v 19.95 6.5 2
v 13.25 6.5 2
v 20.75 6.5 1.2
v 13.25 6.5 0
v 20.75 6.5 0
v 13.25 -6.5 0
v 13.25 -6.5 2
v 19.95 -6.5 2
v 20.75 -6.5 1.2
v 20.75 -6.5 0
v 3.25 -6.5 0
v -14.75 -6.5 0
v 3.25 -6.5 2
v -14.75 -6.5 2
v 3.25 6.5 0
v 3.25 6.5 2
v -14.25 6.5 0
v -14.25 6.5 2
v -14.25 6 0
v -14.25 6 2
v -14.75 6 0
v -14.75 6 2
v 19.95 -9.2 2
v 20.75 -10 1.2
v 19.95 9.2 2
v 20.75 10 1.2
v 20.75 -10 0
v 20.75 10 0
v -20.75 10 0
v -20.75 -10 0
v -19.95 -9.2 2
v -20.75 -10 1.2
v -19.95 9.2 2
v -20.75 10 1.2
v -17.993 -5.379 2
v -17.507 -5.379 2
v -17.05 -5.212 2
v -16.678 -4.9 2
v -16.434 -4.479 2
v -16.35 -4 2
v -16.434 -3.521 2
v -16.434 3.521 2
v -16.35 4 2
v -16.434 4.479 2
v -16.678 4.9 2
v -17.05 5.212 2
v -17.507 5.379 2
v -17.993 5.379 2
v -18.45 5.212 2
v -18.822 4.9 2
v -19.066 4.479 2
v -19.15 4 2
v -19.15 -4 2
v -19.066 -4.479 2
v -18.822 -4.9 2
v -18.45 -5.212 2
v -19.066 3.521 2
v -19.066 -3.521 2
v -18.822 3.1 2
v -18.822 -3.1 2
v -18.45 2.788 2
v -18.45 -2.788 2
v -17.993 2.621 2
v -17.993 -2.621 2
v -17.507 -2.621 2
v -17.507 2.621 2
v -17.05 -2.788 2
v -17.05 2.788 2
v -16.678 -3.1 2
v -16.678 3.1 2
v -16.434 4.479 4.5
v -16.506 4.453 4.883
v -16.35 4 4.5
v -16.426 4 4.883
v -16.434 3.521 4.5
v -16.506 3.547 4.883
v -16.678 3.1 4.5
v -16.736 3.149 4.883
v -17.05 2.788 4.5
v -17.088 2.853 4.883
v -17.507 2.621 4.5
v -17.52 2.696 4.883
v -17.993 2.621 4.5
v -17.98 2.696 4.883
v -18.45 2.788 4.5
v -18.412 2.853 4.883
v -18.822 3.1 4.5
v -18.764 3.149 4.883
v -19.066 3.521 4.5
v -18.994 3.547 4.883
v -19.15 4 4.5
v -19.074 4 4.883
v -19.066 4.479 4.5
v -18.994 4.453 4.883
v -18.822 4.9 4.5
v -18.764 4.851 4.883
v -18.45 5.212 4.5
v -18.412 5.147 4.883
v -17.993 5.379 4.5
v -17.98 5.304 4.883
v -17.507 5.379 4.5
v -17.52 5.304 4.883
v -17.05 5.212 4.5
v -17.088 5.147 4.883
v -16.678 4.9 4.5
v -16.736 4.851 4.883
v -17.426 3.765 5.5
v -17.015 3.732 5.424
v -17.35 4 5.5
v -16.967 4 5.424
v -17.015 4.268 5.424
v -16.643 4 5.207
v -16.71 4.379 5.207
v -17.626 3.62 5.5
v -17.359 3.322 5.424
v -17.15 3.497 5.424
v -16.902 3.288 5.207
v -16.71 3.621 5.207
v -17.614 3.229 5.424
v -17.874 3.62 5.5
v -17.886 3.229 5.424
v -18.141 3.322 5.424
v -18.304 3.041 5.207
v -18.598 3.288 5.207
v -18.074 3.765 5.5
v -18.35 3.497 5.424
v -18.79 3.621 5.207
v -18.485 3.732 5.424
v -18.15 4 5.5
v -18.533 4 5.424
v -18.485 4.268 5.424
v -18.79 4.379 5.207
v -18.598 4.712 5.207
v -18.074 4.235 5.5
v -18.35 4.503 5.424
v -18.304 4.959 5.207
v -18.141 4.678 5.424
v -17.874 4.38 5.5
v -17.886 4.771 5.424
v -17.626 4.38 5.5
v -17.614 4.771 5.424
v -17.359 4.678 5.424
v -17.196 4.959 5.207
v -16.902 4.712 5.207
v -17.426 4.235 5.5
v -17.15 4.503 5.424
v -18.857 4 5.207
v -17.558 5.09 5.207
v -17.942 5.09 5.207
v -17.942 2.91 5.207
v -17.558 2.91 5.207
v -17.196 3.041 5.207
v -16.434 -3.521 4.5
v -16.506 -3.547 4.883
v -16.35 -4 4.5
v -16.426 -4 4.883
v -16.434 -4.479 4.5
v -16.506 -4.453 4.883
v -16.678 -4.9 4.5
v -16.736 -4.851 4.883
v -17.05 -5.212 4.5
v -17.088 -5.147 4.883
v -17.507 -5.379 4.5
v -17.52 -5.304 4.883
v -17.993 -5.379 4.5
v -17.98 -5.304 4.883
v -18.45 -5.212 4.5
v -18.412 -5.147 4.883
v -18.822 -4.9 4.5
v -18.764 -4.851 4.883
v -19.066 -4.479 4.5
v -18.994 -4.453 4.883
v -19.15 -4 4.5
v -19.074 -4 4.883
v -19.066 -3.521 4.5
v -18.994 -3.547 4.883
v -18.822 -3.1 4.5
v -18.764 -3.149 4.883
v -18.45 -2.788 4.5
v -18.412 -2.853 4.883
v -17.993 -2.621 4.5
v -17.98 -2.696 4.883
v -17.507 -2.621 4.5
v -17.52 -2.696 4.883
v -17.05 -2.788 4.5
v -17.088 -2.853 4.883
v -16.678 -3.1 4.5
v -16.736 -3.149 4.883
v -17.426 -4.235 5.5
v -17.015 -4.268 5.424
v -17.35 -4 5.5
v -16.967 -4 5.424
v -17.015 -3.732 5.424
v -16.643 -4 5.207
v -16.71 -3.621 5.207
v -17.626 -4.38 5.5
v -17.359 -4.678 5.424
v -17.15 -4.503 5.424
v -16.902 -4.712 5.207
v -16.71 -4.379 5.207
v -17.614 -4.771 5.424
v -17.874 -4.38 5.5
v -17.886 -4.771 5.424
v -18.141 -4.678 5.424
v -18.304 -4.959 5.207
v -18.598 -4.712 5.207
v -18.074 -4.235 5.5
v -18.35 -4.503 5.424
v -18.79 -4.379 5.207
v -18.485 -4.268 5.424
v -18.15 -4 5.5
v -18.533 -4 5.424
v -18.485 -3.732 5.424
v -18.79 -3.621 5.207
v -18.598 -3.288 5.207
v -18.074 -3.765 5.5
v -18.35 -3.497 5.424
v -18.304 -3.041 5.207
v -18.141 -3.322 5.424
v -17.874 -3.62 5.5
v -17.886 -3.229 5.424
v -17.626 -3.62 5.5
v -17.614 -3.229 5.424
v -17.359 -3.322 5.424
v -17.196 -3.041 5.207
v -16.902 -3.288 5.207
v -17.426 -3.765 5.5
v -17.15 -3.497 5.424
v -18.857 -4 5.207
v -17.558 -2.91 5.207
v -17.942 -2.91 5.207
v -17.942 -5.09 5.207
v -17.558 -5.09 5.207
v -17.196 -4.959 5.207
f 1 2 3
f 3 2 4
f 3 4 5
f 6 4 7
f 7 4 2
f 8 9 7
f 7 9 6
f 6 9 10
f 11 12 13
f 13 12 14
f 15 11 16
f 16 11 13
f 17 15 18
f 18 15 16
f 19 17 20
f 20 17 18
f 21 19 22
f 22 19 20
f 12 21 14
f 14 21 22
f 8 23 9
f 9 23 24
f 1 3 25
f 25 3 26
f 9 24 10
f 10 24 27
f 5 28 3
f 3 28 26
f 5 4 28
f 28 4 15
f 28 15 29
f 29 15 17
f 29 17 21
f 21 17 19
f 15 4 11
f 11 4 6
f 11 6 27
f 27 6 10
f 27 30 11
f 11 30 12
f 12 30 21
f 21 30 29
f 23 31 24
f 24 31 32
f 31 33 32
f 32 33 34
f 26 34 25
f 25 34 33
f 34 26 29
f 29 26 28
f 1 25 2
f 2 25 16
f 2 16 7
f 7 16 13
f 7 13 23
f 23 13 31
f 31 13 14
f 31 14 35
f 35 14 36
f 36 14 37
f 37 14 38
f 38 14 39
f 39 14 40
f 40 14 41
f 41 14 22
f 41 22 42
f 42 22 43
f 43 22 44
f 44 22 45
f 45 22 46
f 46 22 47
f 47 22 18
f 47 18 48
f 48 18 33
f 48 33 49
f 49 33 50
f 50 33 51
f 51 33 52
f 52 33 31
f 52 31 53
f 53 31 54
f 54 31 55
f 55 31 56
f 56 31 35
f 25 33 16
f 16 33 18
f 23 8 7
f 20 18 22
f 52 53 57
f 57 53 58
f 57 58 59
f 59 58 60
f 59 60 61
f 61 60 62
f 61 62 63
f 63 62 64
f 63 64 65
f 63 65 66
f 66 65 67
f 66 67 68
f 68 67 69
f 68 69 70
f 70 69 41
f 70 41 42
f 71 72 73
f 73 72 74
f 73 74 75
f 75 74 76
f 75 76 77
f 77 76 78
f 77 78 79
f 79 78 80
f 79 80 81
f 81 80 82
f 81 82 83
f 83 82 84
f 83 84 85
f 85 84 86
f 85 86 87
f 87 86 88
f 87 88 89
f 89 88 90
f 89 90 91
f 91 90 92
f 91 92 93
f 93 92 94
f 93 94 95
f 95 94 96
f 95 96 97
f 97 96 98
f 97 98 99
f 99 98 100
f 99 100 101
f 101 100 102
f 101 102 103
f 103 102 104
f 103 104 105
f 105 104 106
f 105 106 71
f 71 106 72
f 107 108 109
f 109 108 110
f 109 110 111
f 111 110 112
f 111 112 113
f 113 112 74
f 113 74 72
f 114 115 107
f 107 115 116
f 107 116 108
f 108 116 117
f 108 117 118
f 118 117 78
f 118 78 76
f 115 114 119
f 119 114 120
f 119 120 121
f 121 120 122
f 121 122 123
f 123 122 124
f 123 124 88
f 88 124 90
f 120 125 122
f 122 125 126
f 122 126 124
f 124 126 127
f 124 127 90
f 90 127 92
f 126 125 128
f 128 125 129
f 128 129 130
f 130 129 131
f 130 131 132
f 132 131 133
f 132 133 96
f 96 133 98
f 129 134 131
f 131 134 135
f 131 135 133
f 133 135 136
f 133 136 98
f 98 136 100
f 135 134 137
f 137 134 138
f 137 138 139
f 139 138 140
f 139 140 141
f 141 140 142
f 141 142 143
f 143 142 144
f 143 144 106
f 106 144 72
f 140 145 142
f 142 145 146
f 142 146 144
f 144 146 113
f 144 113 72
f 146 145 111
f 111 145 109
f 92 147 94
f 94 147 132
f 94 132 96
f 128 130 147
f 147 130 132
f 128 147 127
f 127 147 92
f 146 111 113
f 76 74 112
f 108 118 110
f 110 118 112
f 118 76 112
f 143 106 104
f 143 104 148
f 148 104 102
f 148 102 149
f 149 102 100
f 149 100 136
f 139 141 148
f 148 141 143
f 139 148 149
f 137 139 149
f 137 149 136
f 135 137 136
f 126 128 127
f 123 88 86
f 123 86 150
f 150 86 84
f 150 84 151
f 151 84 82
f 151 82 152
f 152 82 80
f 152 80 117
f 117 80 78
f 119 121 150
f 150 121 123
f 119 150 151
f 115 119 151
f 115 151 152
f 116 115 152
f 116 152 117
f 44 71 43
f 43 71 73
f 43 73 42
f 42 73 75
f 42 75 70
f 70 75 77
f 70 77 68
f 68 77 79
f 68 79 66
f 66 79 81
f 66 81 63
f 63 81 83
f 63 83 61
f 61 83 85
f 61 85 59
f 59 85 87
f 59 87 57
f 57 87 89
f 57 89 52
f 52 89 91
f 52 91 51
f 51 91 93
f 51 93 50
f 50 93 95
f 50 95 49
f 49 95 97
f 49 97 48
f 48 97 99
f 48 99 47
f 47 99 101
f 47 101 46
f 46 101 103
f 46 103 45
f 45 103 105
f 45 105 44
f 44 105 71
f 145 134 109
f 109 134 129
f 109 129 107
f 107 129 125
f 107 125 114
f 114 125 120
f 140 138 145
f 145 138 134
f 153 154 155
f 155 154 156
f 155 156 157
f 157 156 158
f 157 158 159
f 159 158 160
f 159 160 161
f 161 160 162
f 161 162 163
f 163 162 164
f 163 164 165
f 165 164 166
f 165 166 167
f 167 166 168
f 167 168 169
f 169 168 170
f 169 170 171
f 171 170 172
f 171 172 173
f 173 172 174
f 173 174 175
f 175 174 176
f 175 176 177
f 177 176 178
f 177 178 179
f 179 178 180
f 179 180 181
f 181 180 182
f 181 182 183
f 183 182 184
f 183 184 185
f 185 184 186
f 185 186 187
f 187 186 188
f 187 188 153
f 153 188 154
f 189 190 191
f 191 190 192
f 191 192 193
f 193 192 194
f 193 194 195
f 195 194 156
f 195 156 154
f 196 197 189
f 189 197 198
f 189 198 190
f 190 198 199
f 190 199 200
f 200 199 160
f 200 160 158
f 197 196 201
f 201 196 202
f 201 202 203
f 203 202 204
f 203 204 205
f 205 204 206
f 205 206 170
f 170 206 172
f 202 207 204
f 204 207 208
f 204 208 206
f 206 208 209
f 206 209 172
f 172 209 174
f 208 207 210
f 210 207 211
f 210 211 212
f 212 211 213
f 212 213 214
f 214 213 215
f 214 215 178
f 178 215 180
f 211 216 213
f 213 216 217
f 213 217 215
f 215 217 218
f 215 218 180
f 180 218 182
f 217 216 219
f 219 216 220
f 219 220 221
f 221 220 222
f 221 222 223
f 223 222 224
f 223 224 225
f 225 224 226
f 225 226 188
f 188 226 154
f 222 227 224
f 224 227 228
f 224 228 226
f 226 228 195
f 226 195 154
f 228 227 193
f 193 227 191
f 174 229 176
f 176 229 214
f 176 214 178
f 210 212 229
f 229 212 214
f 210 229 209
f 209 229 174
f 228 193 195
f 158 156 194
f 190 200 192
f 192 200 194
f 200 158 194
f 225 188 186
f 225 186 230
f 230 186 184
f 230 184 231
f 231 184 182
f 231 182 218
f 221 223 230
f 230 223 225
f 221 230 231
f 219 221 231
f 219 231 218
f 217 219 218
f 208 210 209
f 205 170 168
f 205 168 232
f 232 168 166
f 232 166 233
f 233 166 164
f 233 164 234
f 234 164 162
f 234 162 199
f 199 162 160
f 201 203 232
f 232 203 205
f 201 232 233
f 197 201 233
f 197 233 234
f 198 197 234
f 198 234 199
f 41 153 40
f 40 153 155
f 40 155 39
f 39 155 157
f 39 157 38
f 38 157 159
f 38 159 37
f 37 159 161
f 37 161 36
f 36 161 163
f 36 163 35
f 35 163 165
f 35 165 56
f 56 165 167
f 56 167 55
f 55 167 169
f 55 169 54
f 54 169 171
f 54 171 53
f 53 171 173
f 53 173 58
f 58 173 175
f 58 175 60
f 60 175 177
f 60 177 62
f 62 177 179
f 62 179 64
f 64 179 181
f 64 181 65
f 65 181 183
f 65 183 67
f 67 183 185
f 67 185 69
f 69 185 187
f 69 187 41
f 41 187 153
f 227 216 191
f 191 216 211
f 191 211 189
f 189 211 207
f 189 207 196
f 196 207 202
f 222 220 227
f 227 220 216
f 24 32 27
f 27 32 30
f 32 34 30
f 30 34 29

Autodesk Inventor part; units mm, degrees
ref_plane "YZ Plane" through (0, 0, 0) normal (1, 0, 0) x (0, 1, 0)
ref_plane "XZ Plane" through (0, 0, 0) normal (0, 1, 0) x (-1, 0, 0)
ref_plane "XY Plane" through (0, 0, 0) normal (0, 0, 1) x (1, 0, 0)
sketch "Sketch1" plane through (0, 0, 0) normal (0, 0, 1) x (1, 0, 0)
  line L0 (-20.75, -10) -> (20.75, -10)
  line L1 (20.75, -10) -> (20.75, 10)
  line L2 (20.75, 10) -> (-20.75, 10)
  line L3 (-20.75, 10) -> (-20.75, -10)
  line L4 (-20.75, -10) -> (20.75, 10) construction
  line L5 (20.75, -10) -> (-20.75, 10) construction
  circle A0 centre (-17.75, 4) radius 1.4
  circle A1 centre (-17.75, -4) radius 1.4
  point P0 (0, 0)
  dimension "d0" = 41.5
  dimension "d1" = 20
  dimension "d2" = 2.8
  dimension "d3" = 2.8
  dimension "d4" = 6
  dimension "d5" = 6
  dimension "d6" = 3
  dimension "d7" = 3
extrude "Extrusion1" add sketch "Sketch1" along normal blind 2
extrude "Extrusion2" add sketch "Sketch1" along normal blind 5.5 contours A0 | A1
fillet "Fillet1" radius 1 2 edges at (-19.15, -4, 5.5) (-19.15, 4, 5.5)
chamfer "Chamfer1" distance 0.8 angle 45 4 edges at (-20.75, 0, 2) (0, 10, 2) (0, -10, 2) (20.75, 0, 2)
sketch "Sketch2" plane through (0, 0, 2) normal (0, 0, 1) x (1, 0, 0)
  line L0 (20.75, -10) -> (20.75, 10) projected
  line L1 (20.75, -6.5) -> (-14.25, -6.5)
  line L2 (-14.25, -6.5) -> (-14.25, 6.5)
  line L3 (-14.25, 6.5) -> (20.75, 6.5)
  line L4 (20.75, 6.5) -> (20.75, -6.5)
  line L5 (20.75, 10) -> (-20.75, 10) projected
  line L6 (-20.75, -10) -> (20.75, -10) projected
  line L7 (-20.75, 10) -> (-20.75, -10) projected
  line L8 (20.75, 6.5) -> (13.25, 6.5)
  line L9 (13.25, 6.5) -> (13.25, -6.5)
  line L10 (13.25, -6.5) -> (20.75, -6.5)
  line L11 (20.75, -6.5) -> (20.75, 6.5)
  line L12 (13.25, -6.5) -> (3.25, -6.5)
  line L13 (3.25, -6.5) -> (3.25, 6.5)
  line L14 (3.25, 6.5) -> (13.25, 6.5)
  line L15 (13.25, 6.5) -> (13.25, -6.5)
  line L16 (-14.25, -6.5) -> (-14.75, -6.5)
  line L17 (-14.75, -6.5) -> (-14.75, 6)
  line L18 (-14.75, 6) -> (-14.25, 6)
  line L19 (-14.25, 6) -> (-14.25, -6.5)
  point P0 (0, 0)
  point P1 (20.75, 6.5)
  point P2 (3.25, -6.5)
  point P3 (-14.5, 6)
  point P4 (-14.5, 6)
  dimension "d16" = 3.5
  dimension "d17" = 3.5
  dimension "d18" = 6.5
  dimension "d19" = 7.5
  dimension "d20" = 10
  dimension "d23" = 0.5
extrude "Extrusion3" cut sketch "Sketch2" against normal blind 2.5 contours L1 L9 L3 L0 | L1 L2 L3 L13 | L16 L17 L18 L2
properties part number "Modules_cover"
